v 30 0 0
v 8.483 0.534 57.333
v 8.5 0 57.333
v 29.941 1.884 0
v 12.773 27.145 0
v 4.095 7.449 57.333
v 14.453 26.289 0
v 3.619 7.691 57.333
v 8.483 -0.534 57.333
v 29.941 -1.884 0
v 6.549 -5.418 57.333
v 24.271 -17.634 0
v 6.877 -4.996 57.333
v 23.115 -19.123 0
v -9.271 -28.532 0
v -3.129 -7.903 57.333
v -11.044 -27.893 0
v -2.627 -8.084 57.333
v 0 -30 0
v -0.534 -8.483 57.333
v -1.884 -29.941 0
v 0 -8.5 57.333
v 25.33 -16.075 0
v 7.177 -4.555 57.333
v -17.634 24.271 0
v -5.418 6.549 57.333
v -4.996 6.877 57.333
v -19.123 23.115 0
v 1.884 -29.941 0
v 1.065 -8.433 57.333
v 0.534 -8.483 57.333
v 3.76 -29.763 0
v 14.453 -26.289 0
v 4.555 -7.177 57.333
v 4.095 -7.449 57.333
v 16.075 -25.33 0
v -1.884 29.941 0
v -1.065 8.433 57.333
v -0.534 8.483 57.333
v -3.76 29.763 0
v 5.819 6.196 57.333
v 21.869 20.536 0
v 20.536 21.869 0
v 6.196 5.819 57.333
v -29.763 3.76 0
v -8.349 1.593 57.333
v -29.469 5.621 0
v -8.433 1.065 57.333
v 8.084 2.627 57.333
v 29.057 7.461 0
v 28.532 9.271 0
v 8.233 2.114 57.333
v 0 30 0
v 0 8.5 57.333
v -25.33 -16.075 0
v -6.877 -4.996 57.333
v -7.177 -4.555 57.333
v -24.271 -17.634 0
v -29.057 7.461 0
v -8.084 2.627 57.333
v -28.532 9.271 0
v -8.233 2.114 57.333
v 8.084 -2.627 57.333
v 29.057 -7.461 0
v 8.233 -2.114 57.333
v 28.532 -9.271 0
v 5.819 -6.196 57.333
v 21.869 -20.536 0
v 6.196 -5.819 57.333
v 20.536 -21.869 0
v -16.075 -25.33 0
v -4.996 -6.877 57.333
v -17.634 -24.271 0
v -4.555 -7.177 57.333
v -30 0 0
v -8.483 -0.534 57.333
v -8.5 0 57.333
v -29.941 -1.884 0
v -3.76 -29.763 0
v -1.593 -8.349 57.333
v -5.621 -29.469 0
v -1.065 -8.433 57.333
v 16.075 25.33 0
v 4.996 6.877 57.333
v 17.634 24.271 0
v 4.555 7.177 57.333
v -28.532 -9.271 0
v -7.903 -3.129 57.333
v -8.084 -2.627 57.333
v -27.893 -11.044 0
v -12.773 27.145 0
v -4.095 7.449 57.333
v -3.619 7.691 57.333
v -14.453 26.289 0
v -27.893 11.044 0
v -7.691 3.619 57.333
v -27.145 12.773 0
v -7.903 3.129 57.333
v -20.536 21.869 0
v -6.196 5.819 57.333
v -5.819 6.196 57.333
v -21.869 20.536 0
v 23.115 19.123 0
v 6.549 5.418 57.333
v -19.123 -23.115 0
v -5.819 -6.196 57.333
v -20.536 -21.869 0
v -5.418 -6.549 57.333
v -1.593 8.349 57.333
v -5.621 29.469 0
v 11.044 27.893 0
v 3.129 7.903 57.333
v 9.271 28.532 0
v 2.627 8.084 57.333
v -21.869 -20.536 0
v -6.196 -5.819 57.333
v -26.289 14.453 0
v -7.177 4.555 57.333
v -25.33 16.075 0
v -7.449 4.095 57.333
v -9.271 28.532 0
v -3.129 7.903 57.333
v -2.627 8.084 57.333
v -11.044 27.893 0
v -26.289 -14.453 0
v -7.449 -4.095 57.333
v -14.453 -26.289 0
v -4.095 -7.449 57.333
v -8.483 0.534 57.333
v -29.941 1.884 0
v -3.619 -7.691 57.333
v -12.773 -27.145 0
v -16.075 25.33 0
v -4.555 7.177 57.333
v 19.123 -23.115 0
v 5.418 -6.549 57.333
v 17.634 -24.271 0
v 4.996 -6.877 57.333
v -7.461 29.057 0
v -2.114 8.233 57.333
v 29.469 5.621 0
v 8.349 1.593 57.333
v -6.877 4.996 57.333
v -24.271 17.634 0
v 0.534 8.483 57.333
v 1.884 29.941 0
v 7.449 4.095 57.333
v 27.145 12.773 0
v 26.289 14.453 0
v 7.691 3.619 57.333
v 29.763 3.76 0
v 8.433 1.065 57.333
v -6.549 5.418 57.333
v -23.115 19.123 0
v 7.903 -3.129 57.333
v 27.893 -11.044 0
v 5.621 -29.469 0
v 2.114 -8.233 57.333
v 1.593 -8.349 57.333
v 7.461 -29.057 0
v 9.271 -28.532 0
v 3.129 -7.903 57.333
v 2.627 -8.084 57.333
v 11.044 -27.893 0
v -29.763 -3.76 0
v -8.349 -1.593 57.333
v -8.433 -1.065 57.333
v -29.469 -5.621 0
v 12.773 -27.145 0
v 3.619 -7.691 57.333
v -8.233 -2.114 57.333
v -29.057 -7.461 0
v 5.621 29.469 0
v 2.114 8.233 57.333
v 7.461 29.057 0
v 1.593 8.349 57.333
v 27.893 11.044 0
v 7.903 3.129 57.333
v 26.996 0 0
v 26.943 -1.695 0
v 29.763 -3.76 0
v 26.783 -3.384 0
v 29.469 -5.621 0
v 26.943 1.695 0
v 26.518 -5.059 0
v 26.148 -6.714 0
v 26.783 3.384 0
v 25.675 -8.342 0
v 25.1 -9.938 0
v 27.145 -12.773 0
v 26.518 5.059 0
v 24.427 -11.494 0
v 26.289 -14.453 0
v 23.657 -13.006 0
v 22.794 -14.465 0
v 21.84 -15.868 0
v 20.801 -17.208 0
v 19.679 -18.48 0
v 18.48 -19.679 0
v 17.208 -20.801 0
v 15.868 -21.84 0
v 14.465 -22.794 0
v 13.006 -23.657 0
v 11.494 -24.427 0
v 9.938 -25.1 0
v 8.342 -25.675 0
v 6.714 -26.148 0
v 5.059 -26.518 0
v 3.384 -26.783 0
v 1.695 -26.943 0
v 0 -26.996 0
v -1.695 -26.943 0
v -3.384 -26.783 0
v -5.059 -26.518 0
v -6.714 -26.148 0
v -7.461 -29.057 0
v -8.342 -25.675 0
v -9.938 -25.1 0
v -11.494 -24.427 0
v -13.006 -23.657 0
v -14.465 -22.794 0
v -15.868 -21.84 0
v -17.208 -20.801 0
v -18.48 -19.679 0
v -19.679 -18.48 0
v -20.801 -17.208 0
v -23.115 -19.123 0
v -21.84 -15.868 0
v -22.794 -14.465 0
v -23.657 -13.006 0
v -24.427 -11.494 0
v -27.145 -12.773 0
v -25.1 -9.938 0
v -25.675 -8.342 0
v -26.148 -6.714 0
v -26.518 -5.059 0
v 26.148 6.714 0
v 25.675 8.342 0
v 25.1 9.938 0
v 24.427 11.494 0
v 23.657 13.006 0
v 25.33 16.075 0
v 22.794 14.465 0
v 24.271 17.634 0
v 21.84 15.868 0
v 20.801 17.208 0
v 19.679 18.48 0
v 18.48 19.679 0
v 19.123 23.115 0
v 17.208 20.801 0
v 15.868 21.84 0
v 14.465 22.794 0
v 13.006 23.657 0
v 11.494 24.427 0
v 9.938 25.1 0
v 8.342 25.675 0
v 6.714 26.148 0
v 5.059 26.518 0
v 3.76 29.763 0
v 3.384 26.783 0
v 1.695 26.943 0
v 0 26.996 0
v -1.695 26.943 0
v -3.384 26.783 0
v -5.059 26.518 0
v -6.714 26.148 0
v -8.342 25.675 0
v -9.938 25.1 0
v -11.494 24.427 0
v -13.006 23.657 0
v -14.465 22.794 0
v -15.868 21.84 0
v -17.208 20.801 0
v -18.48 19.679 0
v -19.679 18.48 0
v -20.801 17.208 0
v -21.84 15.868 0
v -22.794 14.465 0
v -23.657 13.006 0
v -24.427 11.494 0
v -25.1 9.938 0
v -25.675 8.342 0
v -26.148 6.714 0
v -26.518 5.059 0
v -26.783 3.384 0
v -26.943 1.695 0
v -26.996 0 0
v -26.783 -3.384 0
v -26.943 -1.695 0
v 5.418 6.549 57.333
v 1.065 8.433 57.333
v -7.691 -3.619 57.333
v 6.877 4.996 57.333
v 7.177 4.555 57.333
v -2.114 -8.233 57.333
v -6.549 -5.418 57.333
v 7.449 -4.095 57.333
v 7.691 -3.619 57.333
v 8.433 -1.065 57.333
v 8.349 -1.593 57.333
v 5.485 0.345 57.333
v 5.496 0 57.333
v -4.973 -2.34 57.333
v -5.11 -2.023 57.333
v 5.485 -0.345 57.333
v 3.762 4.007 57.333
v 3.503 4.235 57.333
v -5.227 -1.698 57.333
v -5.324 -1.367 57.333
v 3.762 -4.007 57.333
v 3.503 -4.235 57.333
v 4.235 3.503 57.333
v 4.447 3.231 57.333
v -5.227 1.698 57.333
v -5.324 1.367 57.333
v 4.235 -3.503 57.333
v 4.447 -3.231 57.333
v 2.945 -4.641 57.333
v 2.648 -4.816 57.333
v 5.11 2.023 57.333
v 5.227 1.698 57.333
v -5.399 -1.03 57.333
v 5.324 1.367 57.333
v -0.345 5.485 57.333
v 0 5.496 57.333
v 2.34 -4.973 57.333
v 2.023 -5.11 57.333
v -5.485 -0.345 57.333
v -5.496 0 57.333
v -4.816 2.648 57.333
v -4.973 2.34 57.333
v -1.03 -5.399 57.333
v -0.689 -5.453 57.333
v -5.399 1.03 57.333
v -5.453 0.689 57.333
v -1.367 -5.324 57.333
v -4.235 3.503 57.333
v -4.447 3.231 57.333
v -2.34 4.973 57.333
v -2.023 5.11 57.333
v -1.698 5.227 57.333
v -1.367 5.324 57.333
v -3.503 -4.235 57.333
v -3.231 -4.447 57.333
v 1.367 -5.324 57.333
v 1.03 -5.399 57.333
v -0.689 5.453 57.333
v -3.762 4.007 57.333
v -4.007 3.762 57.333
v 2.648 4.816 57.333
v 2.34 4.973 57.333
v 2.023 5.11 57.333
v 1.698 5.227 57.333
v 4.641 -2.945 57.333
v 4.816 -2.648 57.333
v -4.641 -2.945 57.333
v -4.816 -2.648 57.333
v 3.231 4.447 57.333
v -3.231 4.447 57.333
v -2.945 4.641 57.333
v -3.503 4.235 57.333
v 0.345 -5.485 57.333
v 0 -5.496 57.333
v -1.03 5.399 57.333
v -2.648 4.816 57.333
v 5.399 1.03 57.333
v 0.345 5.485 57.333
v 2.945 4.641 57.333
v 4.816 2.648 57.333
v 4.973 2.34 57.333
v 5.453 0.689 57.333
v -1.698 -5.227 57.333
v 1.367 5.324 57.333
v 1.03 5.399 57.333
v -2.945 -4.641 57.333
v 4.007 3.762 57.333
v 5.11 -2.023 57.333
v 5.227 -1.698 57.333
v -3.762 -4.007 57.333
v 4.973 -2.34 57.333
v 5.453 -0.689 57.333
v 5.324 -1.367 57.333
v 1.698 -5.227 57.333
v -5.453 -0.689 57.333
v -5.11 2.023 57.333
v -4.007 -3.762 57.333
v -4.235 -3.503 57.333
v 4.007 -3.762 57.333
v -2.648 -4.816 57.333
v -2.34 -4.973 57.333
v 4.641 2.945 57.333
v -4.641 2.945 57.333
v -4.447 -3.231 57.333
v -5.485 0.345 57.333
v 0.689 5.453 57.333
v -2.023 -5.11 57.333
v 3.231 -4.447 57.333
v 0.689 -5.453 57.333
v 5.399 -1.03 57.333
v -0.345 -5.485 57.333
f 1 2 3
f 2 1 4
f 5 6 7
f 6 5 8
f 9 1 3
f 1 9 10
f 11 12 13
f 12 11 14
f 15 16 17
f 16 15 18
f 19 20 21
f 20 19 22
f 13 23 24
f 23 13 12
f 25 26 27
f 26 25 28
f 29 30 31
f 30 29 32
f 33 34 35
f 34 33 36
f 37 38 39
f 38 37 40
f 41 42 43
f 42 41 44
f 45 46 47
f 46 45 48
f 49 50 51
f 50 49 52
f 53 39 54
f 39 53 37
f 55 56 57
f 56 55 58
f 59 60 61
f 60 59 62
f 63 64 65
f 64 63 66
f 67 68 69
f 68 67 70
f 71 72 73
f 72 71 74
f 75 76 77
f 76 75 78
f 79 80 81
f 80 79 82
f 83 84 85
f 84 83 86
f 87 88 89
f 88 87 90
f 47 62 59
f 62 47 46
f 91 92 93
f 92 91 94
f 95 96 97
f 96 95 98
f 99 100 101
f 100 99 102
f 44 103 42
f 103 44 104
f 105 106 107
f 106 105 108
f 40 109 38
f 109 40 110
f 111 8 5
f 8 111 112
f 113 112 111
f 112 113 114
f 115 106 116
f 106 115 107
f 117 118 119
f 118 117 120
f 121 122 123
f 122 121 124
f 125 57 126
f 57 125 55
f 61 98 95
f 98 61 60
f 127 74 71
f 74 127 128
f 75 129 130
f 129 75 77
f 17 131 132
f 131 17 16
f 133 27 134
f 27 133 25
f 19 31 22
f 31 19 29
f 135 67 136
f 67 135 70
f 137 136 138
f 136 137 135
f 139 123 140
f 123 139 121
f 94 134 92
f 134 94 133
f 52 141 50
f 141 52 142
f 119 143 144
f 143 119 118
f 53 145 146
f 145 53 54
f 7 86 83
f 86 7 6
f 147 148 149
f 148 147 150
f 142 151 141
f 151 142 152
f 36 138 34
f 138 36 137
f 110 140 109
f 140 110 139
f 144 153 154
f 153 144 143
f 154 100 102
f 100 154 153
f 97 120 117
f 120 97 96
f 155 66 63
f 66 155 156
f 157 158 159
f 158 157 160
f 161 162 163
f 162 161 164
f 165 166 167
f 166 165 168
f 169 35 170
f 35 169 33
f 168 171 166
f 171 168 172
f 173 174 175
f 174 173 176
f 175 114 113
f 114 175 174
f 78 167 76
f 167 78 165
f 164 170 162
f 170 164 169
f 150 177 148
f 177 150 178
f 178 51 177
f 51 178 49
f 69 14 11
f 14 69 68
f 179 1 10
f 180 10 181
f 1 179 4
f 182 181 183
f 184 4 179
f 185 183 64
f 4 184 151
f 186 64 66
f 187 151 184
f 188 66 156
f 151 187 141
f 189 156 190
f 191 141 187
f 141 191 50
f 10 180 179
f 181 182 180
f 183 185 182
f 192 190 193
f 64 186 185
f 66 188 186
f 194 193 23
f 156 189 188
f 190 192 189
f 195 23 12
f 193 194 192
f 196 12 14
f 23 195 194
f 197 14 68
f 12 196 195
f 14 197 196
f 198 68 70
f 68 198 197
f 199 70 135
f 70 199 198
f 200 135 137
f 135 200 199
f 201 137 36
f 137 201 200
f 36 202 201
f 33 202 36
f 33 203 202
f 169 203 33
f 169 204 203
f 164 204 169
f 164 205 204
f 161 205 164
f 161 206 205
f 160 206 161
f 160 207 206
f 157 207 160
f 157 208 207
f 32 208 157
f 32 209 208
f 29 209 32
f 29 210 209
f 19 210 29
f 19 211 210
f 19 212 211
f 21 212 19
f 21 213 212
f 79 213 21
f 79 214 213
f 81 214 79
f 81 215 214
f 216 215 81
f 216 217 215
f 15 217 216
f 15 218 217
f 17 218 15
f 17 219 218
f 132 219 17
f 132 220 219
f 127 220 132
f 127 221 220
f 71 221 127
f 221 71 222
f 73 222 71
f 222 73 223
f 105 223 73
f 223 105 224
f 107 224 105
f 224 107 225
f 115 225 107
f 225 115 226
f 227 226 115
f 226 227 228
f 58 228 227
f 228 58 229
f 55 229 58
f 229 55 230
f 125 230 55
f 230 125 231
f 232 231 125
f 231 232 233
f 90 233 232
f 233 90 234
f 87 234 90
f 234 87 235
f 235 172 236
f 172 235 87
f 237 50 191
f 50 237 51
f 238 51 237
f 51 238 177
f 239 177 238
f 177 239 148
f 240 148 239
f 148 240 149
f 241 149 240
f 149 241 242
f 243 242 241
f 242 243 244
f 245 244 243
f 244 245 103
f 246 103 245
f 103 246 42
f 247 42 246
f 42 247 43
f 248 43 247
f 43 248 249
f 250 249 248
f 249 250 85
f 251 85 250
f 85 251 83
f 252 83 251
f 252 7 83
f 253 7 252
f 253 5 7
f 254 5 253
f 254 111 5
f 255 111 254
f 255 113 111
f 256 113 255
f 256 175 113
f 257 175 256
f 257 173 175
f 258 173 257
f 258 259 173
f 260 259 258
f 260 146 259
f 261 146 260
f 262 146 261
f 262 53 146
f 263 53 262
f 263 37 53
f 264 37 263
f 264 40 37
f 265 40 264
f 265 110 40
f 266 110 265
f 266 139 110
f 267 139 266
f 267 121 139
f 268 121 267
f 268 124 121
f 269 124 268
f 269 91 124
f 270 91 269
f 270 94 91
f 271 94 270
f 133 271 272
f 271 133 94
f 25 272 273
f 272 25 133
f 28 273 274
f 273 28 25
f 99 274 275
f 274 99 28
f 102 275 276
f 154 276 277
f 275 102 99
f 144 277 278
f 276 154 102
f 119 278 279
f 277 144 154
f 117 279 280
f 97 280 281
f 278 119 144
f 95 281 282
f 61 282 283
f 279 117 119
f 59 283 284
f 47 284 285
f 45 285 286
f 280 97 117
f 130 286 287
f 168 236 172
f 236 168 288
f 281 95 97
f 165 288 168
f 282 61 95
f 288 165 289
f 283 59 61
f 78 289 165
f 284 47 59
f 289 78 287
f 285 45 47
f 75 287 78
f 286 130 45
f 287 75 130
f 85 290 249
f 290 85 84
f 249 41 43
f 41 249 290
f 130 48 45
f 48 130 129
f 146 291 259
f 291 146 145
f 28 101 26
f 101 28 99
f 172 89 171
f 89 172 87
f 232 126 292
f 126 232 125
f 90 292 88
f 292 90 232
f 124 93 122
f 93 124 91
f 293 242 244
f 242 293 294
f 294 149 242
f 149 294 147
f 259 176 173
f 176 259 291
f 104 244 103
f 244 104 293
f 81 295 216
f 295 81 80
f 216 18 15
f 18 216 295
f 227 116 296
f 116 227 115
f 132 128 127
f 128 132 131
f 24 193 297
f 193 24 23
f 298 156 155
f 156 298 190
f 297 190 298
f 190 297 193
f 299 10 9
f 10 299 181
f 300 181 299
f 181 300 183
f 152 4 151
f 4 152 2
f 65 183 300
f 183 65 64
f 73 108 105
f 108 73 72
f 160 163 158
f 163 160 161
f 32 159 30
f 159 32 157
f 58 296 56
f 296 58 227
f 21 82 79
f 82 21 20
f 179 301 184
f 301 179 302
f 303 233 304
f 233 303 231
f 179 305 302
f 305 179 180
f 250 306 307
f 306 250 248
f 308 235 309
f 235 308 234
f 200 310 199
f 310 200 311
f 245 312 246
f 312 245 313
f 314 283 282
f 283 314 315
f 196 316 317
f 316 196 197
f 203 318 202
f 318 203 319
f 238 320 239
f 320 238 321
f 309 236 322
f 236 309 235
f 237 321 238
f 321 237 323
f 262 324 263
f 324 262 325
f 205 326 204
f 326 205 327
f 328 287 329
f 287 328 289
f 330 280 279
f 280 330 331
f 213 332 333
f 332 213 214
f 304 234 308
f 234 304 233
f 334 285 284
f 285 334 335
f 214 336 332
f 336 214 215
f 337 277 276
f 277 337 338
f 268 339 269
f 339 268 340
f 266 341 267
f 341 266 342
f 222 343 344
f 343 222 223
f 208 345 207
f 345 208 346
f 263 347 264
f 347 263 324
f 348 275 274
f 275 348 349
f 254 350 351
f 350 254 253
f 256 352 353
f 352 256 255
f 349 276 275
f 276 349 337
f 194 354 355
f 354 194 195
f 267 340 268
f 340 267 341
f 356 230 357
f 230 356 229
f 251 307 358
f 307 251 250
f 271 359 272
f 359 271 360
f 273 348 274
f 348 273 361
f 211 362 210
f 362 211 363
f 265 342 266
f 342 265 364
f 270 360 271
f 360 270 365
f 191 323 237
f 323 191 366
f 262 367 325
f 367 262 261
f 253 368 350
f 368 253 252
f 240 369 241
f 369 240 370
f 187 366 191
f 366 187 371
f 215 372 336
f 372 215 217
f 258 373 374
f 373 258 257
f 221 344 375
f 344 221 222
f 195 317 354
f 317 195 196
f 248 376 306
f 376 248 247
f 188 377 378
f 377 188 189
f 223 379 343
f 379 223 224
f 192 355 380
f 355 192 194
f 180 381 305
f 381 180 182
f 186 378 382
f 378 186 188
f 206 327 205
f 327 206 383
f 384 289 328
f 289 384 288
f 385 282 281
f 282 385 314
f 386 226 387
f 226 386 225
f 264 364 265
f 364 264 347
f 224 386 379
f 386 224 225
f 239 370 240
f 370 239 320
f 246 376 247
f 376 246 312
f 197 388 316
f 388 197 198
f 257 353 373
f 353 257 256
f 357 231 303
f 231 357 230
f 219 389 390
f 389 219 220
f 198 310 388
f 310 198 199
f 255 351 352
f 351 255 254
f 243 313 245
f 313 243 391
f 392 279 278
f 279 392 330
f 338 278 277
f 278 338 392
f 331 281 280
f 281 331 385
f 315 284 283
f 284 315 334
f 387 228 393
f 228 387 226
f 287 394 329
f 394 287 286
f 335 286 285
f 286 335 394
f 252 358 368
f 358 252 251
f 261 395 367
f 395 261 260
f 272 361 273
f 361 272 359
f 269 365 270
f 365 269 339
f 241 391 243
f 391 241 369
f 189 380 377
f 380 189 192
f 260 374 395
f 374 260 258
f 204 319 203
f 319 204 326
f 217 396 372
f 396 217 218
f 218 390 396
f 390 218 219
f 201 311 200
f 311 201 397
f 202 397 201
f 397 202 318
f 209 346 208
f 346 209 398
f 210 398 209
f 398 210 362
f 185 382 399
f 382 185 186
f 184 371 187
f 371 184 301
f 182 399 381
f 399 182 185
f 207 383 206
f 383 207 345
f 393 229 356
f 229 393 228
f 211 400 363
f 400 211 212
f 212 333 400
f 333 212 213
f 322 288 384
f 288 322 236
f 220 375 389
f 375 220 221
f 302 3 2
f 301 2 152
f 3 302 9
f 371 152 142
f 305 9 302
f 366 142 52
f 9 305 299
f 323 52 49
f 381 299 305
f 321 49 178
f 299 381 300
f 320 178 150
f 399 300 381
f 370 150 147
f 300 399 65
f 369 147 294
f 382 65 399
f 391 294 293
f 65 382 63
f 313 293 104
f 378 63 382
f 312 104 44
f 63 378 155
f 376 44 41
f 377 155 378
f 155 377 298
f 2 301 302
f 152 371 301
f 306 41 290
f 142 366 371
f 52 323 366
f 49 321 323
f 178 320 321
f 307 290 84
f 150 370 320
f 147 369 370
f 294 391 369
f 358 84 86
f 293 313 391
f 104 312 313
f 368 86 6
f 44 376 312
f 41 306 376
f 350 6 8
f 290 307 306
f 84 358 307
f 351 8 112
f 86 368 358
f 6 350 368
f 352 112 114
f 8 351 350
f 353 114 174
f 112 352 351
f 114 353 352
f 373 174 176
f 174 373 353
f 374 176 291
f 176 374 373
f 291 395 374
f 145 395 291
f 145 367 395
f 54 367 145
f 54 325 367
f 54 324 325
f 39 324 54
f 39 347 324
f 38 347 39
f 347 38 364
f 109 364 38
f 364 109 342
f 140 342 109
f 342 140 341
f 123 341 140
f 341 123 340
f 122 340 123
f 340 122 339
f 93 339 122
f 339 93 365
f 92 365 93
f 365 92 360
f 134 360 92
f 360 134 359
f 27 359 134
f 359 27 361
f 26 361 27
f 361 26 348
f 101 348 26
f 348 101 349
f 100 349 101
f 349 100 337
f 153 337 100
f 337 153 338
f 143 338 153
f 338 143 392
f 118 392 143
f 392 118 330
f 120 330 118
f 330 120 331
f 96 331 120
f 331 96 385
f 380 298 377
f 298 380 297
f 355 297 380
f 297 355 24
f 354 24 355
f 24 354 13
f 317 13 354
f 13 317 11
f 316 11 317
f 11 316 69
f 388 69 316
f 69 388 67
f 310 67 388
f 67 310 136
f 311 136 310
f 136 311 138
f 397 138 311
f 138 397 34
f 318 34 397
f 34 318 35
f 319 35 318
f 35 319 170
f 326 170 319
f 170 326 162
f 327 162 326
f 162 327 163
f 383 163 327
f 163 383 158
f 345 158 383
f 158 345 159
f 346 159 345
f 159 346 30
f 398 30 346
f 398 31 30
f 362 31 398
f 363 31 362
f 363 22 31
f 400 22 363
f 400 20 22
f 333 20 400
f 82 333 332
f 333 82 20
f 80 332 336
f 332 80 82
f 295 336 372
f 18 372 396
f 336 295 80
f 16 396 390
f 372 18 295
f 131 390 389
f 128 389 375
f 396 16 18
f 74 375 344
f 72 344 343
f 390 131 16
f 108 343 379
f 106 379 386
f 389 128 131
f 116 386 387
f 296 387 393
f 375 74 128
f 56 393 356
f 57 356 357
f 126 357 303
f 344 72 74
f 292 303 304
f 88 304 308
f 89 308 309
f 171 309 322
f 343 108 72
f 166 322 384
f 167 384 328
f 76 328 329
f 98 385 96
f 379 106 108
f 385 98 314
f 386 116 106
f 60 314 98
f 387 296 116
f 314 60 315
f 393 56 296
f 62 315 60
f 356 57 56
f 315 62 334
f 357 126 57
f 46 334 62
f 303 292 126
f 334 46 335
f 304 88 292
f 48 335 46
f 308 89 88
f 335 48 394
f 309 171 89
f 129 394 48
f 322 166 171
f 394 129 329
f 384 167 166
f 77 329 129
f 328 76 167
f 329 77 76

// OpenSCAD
$fn = 100;
EPS = 0.01;

// parameters (mm)
outer_diameter = 60;    // outer diameter of the funnel
height = 80;            // height of the funnel (approximate)
thickness = 3;          // thickness of the funnel wall
hole_size = 11;         // diameter of the hole at the bottom

// cone
inner_diameter = outer_diameter - 2*thickness;
ratio = outer_diameter / height;
outer_r = outer_diameter/2;
inner_r = inner_diameter/2;
angle = atan(height/outer_r);
height_inner = inner_r * tan(angle);

dist = hole_size / 2 * tan(angle);
y_cut = height_inner - dist;


module Cone() {
    difference() {
        color(c = "orange", alpha = 0.1) {
            cylinder(h = height, r1 = outer_diameter/2, r2 = 0);
        }
        translate([0, 0, -EPS]) {
            color(c = "blue", alpha = 0.5) {
                cylinder(h = height_inner, r1 = inner_diameter/2, r2 = 0);
            } 
        }
    }
}

module Hole() {
    translate([0, 0, y_cut]) {
        cylinder(h = height / 2, r = outer_r);
    }
}

difference() {
    Cone();
    Hole();
}

echo("Actual height: ", y_cut);
